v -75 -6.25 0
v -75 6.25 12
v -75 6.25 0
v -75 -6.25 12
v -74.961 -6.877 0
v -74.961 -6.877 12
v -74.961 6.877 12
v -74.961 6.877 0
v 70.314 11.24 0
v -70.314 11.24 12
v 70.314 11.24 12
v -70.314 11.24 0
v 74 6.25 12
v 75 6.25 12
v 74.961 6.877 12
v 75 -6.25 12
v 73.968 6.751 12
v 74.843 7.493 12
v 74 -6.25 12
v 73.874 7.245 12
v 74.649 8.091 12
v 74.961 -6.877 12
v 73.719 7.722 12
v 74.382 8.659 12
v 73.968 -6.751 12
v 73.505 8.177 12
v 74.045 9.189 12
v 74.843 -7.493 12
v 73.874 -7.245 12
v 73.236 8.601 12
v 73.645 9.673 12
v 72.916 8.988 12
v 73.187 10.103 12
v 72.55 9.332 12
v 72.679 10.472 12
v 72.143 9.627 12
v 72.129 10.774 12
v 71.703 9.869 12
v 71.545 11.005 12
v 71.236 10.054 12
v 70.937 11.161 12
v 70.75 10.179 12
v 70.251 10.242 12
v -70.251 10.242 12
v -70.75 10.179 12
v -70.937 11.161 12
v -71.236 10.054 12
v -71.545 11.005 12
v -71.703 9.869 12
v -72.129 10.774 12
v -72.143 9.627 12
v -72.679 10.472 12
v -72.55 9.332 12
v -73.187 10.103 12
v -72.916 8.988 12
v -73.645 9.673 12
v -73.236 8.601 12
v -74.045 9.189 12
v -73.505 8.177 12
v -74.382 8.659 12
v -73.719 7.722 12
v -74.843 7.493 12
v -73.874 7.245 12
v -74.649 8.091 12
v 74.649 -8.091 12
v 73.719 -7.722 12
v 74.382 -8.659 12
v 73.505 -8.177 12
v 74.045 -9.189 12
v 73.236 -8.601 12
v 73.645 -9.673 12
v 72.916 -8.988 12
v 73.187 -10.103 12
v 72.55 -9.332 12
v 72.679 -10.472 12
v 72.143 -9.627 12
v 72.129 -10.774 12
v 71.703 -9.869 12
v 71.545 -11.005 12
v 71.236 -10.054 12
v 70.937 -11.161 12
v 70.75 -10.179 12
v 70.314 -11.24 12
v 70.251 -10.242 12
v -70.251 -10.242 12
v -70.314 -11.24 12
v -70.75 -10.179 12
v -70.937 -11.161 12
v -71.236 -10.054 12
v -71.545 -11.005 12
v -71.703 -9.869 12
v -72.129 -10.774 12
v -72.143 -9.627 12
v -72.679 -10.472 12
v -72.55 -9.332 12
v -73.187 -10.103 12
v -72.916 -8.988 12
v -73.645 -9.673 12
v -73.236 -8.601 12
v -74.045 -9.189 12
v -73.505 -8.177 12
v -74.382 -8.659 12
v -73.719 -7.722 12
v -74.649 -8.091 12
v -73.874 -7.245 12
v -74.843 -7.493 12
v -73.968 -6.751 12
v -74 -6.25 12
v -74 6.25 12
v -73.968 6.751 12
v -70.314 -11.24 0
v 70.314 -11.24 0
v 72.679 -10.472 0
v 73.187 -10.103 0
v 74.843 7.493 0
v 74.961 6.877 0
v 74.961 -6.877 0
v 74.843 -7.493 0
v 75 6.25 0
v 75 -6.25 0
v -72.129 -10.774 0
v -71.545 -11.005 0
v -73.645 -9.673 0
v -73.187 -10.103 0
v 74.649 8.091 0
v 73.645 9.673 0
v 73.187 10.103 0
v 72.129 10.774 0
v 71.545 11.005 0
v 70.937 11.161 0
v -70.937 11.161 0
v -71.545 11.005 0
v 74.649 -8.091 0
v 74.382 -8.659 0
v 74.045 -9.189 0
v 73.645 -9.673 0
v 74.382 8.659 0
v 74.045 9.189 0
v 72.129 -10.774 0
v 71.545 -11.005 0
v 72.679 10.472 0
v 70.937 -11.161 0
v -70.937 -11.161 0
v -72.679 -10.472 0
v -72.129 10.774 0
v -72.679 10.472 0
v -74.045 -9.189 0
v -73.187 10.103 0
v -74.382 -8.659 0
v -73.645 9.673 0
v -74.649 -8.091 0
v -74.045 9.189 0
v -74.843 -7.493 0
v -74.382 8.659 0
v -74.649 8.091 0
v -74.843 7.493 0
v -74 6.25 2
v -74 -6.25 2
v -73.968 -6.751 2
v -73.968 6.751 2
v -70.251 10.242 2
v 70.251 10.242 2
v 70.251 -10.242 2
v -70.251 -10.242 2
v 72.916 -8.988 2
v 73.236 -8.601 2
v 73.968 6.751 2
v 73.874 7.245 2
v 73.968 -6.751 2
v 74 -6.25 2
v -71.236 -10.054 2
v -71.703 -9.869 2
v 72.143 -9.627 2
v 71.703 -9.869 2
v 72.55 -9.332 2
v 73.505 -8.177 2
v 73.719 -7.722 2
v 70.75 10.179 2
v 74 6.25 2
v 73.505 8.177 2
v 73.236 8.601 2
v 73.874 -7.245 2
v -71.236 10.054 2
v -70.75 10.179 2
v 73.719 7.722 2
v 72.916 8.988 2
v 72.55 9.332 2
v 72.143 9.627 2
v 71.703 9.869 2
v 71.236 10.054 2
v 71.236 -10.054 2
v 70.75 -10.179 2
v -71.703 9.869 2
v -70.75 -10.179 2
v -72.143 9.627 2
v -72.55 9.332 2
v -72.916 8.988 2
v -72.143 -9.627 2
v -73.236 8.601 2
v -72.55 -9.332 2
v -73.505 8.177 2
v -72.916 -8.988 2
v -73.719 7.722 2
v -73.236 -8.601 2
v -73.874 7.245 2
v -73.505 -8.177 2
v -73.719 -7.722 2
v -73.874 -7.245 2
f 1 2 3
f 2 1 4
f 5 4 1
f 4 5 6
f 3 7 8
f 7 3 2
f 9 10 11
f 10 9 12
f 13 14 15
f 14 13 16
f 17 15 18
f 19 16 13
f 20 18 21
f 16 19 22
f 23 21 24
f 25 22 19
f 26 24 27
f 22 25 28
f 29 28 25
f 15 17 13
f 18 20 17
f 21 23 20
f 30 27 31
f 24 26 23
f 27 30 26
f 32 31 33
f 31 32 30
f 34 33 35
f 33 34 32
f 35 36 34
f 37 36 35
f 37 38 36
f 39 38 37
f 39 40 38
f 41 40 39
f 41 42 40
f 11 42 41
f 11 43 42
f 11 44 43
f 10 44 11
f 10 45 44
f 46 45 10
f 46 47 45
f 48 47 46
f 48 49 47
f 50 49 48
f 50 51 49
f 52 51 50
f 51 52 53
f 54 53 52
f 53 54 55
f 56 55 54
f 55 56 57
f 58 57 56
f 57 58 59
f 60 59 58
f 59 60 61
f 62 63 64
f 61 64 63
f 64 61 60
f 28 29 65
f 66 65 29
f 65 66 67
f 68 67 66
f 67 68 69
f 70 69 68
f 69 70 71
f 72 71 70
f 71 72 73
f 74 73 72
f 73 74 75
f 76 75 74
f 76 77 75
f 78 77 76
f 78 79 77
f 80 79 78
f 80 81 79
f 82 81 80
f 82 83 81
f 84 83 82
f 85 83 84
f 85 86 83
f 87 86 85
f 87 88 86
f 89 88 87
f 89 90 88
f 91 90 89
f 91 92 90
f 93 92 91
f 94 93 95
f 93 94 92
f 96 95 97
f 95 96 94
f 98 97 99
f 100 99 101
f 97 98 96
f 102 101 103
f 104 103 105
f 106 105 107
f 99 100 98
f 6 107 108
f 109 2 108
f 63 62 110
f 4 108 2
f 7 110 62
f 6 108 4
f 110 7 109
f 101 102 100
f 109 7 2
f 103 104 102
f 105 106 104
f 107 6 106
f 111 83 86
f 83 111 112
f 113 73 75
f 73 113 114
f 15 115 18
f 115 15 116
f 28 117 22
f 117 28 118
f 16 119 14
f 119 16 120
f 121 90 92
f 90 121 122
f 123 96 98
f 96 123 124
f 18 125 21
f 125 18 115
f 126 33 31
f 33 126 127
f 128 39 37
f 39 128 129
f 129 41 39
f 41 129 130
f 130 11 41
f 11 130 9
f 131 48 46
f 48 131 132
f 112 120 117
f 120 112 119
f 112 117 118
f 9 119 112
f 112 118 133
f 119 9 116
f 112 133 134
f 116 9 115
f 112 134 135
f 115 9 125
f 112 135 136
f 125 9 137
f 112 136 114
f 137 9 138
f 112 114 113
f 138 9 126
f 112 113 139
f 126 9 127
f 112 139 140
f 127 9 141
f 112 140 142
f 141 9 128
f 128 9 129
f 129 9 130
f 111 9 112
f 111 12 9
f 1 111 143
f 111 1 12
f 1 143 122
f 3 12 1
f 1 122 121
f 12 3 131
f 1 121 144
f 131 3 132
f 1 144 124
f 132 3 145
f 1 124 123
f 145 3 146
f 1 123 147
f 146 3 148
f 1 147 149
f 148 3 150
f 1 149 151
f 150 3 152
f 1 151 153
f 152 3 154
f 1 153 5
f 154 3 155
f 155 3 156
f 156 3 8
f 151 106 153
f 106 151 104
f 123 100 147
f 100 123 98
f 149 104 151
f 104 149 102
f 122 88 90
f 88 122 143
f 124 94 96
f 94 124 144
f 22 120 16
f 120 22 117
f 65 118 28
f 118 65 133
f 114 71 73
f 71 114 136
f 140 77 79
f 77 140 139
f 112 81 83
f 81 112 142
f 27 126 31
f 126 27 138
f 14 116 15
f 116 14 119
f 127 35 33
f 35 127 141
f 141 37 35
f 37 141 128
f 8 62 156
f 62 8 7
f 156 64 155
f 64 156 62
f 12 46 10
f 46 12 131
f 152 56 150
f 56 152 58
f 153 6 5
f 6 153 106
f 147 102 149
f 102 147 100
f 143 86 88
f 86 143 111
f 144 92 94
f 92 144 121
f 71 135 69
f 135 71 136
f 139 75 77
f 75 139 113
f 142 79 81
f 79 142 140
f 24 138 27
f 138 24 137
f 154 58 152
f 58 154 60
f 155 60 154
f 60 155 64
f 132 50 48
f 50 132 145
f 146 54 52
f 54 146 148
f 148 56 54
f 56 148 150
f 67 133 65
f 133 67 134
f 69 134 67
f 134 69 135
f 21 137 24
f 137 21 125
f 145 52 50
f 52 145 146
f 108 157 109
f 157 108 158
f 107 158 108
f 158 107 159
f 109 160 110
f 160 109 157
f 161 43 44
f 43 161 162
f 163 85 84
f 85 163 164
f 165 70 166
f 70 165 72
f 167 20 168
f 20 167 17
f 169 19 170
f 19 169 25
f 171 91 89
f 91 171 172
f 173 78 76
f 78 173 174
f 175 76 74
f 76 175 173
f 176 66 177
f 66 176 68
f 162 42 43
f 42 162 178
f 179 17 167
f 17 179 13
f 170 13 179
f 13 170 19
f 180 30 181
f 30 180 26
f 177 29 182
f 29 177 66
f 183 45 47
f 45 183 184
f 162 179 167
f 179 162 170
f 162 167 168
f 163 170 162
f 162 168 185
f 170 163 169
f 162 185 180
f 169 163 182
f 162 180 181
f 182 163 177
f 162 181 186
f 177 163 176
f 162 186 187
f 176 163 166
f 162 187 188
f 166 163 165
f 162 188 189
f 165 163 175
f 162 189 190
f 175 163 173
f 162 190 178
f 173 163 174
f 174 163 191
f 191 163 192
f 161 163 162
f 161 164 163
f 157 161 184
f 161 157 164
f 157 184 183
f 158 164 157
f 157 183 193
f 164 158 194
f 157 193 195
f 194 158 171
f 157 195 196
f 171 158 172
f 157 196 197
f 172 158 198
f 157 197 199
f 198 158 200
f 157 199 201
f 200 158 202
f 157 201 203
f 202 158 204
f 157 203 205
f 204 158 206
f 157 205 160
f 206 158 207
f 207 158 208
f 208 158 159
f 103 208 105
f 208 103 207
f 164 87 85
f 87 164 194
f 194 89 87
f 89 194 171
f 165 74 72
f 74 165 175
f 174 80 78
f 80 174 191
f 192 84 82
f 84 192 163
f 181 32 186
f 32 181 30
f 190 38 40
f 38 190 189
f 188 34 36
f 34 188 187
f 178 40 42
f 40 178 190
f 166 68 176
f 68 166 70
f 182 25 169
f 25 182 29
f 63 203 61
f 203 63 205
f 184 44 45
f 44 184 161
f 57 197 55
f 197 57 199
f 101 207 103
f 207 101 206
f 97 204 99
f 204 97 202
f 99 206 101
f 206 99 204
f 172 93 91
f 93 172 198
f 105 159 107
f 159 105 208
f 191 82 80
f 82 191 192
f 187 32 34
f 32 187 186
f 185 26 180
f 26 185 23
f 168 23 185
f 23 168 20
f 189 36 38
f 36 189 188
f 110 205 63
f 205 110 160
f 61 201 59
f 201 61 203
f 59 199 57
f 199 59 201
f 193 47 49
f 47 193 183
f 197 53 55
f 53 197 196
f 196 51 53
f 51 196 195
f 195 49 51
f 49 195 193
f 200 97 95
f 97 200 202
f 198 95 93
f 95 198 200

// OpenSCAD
$fn = 50;


difference() {
	union() {
		hull() {
			translate(v = [-70.0000000000, 6.2500000000, 0]) {
				cylinder(h = 12, r = 5);
			}
			translate(v = [70.0000000000, 6.2500000000, 0]) {
				cylinder(h = 12, r = 5);
			}
			translate(v = [-70.0000000000, -6.2500000000, 0]) {
				cylinder(h = 12, r = 5);
			}
			translate(v = [70.0000000000, -6.2500000000, 0]) {
				cylinder(h = 12, r = 5);
			}
		}
	}
	union() {
		translate(v = [0, 0, 2]) {
			hull() {
				translate(v = [-70.0000000000, 6.2500000000, 0]) {
					cylinder(h = 10, r = 4);
				}
				translate(v = [70.0000000000, 6.2500000000, 0]) {
					cylinder(h = 10, r = 4);
				}
				translate(v = [-70.0000000000, -6.2500000000, 0]) {
					cylinder(h = 10, r = 4);
				}
				translate(v = [70.0000000000, -6.2500000000, 0]) {
					cylinder(h = 10, r = 4);
				}
			}
		}
	}
}
